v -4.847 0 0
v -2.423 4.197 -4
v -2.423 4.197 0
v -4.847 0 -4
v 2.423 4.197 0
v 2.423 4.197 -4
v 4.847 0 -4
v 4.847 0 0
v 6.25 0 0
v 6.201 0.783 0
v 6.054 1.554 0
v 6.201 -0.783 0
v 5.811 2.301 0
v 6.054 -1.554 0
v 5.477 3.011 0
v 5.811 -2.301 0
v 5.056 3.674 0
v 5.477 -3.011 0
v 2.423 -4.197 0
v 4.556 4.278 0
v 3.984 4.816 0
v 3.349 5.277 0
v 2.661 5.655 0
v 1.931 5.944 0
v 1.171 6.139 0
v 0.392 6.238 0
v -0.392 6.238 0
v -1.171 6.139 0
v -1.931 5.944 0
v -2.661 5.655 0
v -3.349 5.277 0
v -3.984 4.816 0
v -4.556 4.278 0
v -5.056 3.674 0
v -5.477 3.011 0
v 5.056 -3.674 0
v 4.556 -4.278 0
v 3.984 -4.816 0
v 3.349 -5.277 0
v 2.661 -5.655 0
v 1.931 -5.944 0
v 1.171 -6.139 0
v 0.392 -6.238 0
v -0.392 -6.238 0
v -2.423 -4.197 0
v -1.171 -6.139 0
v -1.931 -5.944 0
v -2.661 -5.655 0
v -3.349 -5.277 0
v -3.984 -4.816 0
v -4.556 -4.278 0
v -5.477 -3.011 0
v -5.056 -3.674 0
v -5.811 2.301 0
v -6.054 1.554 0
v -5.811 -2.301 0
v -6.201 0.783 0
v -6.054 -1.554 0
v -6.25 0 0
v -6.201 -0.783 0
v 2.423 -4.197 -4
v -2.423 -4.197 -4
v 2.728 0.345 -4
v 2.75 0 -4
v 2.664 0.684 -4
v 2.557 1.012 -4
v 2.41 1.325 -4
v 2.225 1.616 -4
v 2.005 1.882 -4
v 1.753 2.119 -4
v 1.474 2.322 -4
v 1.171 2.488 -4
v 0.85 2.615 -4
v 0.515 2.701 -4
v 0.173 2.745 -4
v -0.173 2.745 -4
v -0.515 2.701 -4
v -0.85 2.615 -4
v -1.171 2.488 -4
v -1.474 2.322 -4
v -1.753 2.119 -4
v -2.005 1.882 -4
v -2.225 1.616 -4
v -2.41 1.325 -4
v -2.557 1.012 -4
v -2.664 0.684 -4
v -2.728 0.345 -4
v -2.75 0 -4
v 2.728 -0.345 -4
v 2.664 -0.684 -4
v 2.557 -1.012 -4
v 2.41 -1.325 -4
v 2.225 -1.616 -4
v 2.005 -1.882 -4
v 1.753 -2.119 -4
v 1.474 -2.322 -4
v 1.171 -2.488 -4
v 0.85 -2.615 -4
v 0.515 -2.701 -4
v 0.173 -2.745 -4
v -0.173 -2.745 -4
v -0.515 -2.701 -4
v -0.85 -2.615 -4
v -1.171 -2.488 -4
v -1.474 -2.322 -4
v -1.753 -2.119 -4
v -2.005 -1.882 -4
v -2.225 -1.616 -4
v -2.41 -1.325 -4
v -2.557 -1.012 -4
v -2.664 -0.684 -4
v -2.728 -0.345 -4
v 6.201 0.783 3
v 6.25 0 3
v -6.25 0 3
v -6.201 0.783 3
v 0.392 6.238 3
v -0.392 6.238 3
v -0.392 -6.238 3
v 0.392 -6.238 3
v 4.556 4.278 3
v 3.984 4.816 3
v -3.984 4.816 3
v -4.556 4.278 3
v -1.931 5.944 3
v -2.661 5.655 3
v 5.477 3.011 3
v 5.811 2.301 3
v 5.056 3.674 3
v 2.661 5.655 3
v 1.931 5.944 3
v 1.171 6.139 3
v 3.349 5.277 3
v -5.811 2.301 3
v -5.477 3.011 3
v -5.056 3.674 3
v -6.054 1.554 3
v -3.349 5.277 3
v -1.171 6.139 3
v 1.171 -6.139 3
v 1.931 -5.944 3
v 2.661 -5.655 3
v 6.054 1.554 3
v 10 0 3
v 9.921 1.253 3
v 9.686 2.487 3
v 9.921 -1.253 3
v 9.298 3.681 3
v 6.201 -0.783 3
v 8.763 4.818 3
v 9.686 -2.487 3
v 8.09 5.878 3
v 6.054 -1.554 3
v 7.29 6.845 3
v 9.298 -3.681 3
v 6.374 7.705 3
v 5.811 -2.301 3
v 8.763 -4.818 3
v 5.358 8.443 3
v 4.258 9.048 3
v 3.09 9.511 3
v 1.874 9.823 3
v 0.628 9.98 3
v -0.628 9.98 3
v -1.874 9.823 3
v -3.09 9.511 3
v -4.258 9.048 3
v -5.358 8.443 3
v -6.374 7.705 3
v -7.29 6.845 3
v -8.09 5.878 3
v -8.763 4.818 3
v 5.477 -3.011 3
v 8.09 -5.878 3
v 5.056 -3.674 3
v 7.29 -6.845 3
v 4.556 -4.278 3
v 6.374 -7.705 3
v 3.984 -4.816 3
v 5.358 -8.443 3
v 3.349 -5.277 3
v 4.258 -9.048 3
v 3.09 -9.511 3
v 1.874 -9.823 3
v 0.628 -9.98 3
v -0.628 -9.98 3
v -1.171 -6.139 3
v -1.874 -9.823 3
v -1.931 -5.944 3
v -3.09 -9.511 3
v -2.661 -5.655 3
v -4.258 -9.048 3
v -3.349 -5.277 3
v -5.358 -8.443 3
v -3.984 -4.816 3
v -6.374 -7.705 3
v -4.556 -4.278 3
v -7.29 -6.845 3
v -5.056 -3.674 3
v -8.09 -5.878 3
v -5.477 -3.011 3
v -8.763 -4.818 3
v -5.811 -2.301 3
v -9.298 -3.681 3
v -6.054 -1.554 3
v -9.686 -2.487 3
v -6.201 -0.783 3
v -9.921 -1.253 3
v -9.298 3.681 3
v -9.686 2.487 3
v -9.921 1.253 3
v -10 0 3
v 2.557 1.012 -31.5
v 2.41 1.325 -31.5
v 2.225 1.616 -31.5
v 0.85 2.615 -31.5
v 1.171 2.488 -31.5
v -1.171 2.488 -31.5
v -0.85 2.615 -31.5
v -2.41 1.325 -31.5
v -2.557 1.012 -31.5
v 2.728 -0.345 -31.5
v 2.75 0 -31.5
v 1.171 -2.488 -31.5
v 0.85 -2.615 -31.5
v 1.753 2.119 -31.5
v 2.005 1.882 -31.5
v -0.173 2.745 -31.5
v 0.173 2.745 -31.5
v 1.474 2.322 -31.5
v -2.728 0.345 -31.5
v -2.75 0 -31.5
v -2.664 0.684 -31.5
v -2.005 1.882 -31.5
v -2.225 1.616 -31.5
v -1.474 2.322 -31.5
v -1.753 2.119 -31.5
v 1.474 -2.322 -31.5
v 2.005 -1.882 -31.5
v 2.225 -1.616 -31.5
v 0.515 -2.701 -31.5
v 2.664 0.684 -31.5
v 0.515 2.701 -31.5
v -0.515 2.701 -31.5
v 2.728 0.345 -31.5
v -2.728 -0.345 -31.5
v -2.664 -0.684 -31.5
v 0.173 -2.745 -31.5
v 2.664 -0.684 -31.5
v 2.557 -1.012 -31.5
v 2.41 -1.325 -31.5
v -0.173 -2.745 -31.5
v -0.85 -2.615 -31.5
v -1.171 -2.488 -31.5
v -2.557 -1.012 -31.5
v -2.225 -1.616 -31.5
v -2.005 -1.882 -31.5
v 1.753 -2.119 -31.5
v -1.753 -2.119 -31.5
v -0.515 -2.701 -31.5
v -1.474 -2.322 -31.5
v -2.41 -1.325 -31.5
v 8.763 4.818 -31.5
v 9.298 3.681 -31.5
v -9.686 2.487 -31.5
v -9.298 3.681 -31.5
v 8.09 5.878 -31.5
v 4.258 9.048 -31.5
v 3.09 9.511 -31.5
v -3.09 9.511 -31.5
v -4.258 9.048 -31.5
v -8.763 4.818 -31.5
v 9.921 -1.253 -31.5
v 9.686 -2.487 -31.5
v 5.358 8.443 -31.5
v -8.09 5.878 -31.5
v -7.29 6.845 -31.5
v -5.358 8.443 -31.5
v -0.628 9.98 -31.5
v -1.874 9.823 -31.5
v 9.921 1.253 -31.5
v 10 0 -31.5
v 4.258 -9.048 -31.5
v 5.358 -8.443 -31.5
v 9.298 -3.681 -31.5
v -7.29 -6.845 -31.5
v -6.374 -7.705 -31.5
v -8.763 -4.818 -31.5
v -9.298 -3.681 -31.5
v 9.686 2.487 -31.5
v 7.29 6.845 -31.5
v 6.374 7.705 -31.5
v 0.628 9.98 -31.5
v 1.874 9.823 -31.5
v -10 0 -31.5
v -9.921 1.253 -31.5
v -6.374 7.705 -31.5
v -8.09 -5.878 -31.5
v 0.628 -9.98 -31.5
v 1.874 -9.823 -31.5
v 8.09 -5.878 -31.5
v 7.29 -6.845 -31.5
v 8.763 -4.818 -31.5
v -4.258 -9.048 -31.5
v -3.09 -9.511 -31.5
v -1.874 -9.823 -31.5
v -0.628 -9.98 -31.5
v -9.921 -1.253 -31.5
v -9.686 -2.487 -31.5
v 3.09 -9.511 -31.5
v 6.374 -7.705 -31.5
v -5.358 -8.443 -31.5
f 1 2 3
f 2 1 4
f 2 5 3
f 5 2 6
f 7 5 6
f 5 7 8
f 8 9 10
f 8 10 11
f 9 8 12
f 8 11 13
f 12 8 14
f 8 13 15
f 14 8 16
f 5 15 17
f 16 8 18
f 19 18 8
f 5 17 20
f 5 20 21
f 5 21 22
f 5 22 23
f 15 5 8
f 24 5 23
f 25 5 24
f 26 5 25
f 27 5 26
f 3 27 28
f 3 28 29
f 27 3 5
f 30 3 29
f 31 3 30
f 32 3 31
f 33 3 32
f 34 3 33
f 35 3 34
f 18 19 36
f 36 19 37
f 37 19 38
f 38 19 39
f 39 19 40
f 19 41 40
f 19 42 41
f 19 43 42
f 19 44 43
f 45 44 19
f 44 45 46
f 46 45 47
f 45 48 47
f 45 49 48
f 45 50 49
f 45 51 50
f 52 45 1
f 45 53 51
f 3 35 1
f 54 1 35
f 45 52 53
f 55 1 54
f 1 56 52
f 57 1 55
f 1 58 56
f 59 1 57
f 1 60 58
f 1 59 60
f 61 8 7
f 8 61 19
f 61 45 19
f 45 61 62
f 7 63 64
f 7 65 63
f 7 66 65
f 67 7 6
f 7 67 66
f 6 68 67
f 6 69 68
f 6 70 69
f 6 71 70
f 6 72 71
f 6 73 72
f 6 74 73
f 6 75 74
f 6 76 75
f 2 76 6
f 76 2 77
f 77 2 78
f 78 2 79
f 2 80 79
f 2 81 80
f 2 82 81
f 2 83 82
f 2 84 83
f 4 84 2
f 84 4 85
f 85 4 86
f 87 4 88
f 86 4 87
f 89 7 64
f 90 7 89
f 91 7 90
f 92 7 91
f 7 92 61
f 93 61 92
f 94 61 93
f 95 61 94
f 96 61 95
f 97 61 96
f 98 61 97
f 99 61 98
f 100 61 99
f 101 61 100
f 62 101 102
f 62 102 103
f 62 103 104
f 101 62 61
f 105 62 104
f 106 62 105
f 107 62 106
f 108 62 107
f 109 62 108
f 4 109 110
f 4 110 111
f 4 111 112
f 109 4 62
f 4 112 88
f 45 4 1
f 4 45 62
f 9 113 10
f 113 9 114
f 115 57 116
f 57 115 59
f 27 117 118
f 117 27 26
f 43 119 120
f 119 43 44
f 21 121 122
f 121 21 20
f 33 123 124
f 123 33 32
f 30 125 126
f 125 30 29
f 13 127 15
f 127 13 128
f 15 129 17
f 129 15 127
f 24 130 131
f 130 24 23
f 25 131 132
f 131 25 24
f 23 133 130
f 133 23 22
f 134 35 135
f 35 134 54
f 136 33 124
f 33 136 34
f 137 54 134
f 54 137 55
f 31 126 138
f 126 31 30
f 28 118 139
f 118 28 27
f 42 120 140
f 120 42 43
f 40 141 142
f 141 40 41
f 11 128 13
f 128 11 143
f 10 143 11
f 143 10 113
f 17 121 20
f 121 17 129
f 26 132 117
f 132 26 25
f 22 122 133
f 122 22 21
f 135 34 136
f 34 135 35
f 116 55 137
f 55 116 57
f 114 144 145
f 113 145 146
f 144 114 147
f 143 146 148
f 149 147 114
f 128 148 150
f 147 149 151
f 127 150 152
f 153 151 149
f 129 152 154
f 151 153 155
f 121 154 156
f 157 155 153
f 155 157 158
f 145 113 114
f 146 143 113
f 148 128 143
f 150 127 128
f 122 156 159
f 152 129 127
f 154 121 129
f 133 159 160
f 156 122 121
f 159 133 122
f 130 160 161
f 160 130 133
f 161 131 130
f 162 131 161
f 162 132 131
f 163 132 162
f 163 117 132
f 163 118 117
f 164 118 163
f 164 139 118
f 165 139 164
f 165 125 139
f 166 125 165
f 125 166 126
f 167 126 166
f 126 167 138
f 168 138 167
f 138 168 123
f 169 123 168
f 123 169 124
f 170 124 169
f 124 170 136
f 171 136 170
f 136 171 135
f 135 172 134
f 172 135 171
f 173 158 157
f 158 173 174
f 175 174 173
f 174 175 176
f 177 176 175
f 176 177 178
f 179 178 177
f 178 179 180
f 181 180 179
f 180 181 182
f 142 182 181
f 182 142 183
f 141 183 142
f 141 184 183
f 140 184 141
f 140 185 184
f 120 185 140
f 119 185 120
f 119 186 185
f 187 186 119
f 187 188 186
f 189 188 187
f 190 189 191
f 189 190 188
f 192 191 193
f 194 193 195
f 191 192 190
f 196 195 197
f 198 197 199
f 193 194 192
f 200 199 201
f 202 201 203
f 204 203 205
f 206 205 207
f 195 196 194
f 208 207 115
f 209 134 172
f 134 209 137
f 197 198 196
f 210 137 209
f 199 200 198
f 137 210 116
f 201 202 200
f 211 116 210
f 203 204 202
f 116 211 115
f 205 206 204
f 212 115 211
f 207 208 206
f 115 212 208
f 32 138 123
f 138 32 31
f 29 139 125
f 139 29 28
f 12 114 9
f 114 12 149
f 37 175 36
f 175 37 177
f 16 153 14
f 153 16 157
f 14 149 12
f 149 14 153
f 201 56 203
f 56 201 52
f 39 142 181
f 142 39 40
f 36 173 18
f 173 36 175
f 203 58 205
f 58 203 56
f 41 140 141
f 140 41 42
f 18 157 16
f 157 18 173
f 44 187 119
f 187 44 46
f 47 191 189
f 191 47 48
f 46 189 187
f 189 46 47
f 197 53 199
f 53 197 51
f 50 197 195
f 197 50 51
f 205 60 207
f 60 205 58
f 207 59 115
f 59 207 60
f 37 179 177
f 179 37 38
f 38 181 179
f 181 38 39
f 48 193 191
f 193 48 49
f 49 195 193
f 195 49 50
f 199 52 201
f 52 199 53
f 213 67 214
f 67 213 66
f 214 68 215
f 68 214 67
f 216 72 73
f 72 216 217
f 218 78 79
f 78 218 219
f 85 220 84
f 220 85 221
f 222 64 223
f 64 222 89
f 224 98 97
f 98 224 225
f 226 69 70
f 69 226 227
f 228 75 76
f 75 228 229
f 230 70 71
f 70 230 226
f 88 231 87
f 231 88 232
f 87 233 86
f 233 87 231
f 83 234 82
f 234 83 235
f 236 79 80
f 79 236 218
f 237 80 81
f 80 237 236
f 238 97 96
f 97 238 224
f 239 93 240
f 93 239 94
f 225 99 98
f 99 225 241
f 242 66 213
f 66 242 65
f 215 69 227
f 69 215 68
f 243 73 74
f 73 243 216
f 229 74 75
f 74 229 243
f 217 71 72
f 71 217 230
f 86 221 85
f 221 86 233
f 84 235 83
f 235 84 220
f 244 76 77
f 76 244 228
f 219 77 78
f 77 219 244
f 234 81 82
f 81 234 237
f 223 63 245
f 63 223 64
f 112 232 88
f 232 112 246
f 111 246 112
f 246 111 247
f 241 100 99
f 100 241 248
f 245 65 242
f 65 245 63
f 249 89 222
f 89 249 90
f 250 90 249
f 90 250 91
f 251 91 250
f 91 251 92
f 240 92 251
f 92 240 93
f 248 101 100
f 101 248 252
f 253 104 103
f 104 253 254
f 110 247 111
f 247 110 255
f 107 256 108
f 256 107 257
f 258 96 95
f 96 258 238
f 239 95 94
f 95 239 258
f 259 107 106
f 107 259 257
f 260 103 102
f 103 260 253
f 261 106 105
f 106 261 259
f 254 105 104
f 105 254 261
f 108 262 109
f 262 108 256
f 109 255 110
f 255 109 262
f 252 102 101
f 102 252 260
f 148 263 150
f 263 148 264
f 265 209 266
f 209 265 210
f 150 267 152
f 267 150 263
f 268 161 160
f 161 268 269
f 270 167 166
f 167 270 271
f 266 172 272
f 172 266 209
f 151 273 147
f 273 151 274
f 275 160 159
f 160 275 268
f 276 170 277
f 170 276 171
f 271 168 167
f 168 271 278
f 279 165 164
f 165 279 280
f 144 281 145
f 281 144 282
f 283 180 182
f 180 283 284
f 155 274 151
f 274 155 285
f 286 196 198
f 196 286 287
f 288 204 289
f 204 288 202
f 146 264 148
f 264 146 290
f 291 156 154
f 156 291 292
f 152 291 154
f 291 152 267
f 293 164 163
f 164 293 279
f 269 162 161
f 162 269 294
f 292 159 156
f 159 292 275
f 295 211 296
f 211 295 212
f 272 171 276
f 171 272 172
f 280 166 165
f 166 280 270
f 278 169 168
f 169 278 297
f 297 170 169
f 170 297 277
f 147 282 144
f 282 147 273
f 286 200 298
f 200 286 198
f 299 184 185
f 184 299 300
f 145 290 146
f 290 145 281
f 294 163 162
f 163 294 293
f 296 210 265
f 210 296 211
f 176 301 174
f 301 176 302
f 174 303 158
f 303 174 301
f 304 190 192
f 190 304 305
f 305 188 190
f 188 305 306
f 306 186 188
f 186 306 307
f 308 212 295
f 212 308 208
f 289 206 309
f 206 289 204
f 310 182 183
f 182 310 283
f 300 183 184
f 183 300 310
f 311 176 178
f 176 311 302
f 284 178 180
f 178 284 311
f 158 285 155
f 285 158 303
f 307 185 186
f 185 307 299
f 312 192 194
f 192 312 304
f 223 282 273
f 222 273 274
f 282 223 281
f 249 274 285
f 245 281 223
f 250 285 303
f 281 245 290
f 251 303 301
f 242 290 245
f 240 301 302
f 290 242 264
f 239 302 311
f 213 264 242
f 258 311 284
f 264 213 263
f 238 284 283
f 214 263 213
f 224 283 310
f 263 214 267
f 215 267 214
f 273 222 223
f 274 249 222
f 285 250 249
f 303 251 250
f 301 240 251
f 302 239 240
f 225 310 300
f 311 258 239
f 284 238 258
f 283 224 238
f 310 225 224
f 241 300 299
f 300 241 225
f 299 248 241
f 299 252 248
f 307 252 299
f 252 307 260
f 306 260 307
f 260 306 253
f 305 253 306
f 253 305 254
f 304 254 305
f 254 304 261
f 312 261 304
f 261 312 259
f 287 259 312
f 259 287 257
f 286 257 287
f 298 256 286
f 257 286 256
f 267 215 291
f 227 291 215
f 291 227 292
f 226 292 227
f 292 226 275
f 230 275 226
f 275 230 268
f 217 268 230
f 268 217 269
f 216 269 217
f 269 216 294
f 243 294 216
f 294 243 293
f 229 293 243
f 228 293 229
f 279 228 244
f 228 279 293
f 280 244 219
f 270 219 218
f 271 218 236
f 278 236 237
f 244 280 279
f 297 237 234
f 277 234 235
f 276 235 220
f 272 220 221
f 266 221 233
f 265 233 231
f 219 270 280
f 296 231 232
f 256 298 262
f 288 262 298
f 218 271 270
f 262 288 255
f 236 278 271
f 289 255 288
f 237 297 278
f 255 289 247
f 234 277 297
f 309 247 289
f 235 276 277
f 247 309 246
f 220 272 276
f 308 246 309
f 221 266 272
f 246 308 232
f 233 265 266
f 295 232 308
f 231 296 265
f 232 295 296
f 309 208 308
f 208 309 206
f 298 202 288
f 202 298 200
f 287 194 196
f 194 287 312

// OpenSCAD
$fn = 50;

difference() {
	union() {
		translate(v = [0, 0, -31.5]) {
			cylinder(h = 34.5, r = 10.0);
		}
	}
	union() {
		translate(v = [0, 0, 0]) {
			rotate(a = [0, 0, 0]) {
				difference() {
					union() {
						translate(v = [0, 0, -4]) {
							linear_extrude(height = 4) {
								polygon(points = [[4.8468, 0.0], [2.4234000000000004, 4.197451927062417], [-2.423399999999999, 4.197451927062417], [-4.8468, 5.935618106107392e-16], [-2.423400000000002, -4.197451927062416], [2.423399999999997, -4.197451927062419]]);
							}
						}
					}
					union();
				}
			}
		}
		#cylinder(h = 3, r = 6.25);
		#translate(v = [0, 0, -100.0]) {
			cylinder(h = 200, r = 2.75);
		}
	}
}
